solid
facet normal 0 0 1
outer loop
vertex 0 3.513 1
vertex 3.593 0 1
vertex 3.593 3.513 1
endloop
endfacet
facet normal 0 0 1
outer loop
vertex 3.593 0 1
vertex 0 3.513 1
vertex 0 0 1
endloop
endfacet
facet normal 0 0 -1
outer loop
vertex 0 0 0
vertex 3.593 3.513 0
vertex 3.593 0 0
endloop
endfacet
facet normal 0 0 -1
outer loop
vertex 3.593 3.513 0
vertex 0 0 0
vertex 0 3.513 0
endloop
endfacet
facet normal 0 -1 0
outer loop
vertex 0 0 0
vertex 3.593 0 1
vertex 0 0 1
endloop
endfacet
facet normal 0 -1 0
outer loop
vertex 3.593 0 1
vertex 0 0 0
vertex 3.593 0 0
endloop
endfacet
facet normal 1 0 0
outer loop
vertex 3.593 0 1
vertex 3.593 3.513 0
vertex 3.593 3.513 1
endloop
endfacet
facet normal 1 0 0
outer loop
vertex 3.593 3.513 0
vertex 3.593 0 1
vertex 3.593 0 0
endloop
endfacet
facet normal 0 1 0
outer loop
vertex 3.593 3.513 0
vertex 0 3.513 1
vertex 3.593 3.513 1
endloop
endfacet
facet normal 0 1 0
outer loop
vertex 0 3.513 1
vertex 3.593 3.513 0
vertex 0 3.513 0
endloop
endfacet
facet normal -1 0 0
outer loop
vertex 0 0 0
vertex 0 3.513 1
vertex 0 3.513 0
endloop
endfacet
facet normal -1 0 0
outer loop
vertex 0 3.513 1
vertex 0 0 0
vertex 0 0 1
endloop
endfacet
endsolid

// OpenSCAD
/* Warning, this is a very basic generator with a lot of approximation 
input data : [WLCSP, GJB, 3.593x3.513mm, 64, , A, C04-21531A]
generated by com.zoubworld.electronics.cad.model3d.Basic
Date : Sun Feb 15 10:50:49 CET 2026
*/

//body
color("black")
translate([0,0,0])
cube([3.593,3.513,1.0], center=false);
